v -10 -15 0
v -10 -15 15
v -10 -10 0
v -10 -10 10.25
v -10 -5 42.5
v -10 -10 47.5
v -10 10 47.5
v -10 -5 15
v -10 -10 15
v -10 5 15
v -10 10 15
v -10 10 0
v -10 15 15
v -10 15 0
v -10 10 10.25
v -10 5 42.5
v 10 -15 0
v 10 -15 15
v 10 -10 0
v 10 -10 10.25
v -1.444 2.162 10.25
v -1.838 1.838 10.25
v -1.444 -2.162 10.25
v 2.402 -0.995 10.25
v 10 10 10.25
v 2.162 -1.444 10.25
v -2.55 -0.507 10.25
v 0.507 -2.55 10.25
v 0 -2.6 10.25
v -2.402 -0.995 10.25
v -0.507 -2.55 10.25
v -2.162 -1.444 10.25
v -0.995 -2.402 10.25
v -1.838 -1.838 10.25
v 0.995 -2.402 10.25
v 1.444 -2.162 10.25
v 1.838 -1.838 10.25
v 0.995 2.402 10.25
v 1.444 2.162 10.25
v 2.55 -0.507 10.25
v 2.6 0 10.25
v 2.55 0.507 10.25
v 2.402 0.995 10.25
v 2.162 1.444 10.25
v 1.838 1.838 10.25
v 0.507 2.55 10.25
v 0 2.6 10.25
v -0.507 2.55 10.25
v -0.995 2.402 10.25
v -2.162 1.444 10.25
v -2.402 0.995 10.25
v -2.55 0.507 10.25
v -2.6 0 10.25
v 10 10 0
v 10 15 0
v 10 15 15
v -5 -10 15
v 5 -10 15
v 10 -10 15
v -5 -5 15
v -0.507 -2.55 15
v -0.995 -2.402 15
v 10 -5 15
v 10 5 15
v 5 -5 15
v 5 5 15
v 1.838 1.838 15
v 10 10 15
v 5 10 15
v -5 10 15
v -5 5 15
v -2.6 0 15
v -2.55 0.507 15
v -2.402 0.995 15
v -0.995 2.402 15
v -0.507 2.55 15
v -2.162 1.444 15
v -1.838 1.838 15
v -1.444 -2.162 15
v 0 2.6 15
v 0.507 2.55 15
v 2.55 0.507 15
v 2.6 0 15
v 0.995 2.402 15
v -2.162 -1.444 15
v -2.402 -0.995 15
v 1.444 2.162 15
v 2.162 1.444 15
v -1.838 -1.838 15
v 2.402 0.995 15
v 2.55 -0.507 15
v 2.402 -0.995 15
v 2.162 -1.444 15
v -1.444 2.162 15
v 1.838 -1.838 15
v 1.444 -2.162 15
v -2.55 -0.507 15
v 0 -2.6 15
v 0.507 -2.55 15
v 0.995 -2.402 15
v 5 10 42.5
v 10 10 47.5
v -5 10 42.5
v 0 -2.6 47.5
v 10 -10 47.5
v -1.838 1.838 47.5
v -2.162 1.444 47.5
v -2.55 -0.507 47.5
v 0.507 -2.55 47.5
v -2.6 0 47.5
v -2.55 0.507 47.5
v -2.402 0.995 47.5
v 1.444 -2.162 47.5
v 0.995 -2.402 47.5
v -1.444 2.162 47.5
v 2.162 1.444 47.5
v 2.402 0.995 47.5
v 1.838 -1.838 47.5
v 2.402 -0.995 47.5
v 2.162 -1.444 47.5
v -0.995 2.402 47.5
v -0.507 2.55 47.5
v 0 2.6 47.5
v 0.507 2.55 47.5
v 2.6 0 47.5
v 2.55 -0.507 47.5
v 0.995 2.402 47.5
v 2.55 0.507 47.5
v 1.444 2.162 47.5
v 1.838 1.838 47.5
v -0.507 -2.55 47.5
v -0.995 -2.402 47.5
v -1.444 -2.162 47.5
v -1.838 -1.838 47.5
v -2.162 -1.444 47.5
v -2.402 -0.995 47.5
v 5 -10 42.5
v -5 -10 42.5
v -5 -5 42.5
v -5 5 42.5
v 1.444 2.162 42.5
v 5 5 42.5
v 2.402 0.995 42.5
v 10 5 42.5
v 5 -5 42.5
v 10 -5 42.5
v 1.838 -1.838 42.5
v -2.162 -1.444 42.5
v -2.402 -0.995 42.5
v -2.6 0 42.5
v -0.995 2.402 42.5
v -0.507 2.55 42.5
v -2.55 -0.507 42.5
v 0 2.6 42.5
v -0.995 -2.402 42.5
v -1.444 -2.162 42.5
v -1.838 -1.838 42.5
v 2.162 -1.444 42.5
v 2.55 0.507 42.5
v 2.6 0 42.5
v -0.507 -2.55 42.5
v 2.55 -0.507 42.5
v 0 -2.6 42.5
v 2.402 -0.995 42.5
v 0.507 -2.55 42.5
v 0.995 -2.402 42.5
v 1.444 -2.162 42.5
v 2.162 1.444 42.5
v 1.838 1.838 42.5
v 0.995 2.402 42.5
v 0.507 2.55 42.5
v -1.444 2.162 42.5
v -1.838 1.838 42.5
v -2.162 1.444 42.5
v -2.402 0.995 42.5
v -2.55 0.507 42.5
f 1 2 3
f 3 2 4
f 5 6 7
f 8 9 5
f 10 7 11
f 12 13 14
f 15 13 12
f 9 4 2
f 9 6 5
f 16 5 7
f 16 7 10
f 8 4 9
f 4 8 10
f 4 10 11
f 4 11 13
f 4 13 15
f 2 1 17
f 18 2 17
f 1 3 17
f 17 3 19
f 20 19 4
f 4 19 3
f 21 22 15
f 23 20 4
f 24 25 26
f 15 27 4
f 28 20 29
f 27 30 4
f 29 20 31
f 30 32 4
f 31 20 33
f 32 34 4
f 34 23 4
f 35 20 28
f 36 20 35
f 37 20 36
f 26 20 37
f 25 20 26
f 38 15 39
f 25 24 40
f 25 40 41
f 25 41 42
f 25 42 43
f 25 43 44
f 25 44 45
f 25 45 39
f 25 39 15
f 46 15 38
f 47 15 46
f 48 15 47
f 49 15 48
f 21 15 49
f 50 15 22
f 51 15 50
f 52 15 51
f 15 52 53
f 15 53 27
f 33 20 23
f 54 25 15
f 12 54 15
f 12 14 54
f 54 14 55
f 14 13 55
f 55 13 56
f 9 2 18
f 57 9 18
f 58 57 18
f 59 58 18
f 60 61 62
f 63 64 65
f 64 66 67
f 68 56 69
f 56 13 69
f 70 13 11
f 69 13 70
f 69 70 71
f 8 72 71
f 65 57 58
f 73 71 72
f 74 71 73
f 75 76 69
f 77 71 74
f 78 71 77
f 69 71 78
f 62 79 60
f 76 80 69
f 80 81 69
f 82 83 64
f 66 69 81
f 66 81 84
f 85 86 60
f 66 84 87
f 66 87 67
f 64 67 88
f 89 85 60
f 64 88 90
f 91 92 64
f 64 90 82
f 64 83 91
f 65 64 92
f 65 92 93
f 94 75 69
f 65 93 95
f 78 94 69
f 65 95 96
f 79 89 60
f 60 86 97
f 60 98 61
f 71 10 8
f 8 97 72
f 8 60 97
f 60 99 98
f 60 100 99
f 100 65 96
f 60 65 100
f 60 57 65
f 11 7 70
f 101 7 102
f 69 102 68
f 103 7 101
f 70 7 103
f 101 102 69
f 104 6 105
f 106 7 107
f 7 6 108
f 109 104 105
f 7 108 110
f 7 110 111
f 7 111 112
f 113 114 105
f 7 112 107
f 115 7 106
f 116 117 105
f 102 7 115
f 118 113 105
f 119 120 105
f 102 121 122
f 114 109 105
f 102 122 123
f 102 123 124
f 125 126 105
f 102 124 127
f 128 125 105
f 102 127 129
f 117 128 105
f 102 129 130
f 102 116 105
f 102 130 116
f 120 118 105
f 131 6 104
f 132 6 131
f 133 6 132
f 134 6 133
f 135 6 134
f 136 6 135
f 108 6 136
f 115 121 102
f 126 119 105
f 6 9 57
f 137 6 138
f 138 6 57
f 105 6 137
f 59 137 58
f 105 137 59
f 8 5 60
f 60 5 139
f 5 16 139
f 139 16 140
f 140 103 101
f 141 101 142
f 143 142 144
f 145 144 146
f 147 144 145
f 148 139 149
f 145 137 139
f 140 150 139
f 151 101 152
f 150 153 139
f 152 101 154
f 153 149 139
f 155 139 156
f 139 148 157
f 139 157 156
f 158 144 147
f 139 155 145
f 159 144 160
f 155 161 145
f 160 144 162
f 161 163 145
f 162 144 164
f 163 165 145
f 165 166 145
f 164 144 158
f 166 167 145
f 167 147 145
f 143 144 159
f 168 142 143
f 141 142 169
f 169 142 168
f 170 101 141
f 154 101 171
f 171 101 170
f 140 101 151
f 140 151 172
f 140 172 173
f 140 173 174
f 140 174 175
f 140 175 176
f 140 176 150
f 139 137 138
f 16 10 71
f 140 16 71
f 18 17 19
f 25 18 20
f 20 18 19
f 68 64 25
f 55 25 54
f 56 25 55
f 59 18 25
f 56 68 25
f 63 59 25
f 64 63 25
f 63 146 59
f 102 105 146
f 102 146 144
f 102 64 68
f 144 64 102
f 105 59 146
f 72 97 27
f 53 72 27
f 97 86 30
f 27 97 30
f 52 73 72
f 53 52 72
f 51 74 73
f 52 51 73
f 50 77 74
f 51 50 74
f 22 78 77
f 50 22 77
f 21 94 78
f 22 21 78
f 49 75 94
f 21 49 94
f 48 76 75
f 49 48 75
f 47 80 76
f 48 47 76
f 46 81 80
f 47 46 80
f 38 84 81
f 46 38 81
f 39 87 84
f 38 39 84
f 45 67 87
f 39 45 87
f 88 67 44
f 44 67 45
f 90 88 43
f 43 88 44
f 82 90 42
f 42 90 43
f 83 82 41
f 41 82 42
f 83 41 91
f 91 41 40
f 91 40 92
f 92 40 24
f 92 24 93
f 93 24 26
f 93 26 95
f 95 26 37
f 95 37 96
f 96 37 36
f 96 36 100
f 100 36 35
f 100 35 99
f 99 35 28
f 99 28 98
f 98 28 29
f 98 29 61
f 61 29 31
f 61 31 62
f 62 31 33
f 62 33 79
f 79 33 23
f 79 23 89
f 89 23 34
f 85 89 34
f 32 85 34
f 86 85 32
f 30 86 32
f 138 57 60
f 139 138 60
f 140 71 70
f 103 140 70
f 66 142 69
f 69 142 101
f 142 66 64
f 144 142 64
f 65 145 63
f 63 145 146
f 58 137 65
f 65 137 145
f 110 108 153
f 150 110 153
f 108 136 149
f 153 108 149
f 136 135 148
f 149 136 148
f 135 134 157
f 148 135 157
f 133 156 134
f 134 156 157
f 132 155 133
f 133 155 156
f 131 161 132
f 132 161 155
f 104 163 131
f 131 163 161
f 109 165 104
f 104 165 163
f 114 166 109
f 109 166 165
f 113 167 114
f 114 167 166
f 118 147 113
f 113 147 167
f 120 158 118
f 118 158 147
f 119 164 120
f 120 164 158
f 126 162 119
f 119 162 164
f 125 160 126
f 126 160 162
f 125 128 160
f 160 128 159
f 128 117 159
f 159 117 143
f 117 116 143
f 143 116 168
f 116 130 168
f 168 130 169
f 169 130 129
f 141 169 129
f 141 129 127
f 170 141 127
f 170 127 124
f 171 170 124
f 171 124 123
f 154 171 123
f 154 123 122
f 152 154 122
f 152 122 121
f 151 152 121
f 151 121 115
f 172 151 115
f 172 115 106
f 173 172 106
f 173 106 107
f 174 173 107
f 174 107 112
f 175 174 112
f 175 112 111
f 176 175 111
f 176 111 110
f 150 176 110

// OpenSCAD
$fn=32;

n = 10-5/2;


difference() {
  union() {
    translate([-20/2, -30/2, 0]) cube([20, 30, 15]);
    translate([0, 0, 50-5]) cube([20, 20, 5], center=true);
    translate([n, n, 29]) cube([5, 5, 30], center=true);
    translate([-n, n, 29]) cube([5, 5, 30], center=true);
    translate([-n, -n, 29]) cube([5, 5, 30], center=true);
    translate([n, -n, 29]) cube([5, 5, 30], center=true);
  }
  translate([0, 0, 0.25]) cube([30, 20, 20], center=true);
  cylinder(r=5.2/2, h=50);
}
